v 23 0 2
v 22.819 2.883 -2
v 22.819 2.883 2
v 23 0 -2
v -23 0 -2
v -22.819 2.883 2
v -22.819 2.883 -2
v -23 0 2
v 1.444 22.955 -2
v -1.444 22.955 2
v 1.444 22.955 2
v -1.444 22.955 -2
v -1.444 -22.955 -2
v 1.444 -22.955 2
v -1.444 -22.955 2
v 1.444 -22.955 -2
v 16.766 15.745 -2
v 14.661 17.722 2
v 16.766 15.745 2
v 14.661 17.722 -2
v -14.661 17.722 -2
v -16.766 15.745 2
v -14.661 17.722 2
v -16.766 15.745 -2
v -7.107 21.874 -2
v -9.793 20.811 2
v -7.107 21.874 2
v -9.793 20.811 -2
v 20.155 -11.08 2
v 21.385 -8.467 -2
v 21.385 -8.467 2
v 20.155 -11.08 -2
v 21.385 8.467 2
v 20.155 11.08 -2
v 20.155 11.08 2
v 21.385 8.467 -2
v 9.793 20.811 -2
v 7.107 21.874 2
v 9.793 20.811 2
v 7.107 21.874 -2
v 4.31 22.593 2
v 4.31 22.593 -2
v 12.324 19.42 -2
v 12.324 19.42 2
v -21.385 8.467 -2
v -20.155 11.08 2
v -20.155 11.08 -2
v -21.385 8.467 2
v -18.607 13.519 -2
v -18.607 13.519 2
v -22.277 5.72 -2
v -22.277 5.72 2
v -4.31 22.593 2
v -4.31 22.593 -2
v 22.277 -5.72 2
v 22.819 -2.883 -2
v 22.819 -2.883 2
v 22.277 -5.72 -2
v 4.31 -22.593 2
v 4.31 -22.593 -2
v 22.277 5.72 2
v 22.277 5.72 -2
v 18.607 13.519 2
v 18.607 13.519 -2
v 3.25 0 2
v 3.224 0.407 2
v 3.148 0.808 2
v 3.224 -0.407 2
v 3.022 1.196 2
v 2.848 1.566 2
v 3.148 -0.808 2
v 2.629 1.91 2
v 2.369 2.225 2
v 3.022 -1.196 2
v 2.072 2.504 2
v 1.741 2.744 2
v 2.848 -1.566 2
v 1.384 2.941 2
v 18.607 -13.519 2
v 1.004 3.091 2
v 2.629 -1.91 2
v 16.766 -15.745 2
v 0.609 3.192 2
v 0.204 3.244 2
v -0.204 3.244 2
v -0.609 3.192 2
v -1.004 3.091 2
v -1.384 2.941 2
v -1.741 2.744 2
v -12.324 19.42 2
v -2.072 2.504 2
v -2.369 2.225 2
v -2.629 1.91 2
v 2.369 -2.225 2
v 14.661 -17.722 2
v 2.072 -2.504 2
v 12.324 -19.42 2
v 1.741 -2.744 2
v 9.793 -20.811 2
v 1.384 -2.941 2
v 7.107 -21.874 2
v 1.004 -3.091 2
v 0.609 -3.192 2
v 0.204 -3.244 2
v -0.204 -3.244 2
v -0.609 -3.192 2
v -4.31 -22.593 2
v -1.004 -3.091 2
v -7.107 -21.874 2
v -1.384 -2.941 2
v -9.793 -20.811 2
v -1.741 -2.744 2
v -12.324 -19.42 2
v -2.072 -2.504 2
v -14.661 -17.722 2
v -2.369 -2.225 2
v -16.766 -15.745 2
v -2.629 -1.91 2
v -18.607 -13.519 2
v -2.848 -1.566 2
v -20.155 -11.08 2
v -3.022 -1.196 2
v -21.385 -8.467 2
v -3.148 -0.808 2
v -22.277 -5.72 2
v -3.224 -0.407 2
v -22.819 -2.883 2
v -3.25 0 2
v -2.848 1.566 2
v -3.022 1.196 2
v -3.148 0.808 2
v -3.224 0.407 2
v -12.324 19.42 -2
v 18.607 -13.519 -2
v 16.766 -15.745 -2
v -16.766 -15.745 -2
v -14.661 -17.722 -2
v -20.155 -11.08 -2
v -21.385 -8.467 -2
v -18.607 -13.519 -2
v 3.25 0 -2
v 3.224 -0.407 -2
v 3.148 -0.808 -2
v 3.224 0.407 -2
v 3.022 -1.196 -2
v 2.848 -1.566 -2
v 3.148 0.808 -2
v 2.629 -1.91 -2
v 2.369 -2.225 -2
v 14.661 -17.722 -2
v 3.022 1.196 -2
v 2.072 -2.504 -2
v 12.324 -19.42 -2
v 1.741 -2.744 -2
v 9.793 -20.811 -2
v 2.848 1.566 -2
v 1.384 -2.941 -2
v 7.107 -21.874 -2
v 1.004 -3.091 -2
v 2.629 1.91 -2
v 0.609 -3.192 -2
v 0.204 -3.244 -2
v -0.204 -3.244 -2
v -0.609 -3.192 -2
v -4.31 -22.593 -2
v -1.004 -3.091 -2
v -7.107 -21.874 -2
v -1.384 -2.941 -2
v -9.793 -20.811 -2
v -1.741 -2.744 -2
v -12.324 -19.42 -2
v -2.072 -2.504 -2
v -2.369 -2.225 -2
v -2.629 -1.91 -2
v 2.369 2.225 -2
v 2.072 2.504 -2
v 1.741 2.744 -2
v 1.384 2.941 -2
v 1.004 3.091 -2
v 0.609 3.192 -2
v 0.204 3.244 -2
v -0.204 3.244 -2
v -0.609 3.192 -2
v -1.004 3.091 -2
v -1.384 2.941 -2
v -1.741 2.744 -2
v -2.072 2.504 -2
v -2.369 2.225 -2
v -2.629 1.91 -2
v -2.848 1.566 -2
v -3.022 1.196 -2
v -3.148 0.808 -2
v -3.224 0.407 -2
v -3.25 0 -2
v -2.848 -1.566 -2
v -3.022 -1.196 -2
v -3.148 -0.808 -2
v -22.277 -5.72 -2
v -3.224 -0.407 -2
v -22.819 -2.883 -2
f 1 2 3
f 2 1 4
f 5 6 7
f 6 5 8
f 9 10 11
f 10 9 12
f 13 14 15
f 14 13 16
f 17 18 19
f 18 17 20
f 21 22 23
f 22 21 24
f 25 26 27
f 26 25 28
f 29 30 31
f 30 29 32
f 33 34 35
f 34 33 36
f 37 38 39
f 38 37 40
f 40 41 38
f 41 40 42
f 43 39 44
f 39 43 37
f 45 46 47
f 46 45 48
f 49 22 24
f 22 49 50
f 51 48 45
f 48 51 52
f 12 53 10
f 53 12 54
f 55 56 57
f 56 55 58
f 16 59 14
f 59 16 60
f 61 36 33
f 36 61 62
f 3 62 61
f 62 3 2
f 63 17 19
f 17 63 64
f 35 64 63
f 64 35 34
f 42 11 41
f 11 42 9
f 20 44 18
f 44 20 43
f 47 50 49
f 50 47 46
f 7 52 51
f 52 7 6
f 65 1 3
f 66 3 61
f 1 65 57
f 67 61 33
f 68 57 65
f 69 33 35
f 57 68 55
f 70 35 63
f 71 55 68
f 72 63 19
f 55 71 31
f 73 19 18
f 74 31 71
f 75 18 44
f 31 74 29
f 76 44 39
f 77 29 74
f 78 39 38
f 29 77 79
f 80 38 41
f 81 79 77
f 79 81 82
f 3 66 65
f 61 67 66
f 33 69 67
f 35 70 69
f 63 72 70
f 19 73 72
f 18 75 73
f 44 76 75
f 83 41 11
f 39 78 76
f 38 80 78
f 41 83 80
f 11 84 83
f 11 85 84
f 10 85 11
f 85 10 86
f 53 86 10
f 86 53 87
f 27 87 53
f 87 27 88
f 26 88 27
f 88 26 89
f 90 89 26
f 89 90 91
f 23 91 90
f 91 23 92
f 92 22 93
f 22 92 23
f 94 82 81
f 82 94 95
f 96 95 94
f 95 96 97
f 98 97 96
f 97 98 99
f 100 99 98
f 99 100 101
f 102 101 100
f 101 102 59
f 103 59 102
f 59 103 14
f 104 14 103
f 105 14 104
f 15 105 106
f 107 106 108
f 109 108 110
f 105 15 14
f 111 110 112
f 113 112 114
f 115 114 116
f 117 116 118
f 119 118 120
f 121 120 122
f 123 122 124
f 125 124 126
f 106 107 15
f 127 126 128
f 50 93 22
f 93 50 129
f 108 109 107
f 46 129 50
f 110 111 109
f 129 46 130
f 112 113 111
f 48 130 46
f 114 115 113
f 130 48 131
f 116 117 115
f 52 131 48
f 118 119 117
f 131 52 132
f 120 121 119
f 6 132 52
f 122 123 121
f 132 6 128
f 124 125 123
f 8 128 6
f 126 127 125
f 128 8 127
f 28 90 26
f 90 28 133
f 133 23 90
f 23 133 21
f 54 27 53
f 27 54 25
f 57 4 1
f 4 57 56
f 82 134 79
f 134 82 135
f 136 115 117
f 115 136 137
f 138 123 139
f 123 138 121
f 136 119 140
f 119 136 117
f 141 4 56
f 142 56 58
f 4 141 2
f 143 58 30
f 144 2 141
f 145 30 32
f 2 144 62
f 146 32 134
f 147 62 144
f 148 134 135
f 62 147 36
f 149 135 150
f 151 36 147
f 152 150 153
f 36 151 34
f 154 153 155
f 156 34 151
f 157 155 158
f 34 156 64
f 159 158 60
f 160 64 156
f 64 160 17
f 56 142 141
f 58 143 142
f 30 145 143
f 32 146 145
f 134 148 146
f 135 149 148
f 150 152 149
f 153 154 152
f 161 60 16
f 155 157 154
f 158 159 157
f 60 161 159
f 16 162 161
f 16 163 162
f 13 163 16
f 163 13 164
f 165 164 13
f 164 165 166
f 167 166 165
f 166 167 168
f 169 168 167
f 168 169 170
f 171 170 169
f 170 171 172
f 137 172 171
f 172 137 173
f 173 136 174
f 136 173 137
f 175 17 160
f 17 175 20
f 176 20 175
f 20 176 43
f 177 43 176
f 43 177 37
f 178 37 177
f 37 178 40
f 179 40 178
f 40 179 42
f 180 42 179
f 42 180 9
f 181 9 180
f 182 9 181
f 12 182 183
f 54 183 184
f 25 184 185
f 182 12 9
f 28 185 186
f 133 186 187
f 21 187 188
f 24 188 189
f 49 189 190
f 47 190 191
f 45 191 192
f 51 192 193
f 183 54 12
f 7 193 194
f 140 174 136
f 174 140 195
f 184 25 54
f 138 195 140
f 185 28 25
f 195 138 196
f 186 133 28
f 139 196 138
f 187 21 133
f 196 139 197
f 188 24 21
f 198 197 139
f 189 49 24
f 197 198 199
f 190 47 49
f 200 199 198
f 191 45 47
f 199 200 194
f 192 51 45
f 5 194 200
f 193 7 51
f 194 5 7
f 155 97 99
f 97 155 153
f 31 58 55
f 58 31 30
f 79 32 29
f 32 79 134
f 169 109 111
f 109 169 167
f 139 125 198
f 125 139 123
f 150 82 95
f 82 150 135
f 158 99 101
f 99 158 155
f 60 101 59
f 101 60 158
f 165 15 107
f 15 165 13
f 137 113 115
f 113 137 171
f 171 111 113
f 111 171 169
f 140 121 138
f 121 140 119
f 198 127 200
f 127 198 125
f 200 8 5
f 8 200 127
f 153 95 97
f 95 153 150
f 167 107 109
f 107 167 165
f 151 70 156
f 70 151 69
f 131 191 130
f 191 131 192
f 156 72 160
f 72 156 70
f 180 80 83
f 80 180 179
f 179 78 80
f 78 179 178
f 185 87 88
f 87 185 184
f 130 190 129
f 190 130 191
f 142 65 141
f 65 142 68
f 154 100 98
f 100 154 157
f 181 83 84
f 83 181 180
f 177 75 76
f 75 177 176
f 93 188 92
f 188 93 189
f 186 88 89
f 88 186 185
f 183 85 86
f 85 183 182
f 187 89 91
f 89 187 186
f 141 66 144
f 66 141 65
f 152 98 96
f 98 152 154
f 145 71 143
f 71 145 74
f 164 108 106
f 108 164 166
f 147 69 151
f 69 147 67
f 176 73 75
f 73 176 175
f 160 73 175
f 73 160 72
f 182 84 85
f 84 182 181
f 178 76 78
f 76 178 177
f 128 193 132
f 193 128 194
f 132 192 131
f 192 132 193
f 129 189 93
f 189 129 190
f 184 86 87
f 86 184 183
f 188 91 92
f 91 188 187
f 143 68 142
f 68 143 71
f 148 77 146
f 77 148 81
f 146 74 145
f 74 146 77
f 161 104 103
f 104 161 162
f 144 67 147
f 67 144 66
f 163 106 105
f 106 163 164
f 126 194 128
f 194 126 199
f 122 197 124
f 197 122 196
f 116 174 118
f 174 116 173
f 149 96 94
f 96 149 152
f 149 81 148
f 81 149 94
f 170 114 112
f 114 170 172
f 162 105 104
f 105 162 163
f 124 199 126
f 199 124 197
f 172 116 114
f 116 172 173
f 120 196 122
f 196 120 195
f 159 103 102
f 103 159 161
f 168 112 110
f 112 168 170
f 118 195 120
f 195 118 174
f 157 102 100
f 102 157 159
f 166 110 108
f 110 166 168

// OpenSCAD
$fn = 50;


difference() {
	union() {
		translate(v = [0, 0, -2.0000000000]) {
			cylinder(h = 4, r = 23.0000000000);
		}
	}
	union() {
		translate(v = [0, 0, -100.0000000000]) {
			cylinder(h = 200, r = 3.2500000000);
		}
	}
}
